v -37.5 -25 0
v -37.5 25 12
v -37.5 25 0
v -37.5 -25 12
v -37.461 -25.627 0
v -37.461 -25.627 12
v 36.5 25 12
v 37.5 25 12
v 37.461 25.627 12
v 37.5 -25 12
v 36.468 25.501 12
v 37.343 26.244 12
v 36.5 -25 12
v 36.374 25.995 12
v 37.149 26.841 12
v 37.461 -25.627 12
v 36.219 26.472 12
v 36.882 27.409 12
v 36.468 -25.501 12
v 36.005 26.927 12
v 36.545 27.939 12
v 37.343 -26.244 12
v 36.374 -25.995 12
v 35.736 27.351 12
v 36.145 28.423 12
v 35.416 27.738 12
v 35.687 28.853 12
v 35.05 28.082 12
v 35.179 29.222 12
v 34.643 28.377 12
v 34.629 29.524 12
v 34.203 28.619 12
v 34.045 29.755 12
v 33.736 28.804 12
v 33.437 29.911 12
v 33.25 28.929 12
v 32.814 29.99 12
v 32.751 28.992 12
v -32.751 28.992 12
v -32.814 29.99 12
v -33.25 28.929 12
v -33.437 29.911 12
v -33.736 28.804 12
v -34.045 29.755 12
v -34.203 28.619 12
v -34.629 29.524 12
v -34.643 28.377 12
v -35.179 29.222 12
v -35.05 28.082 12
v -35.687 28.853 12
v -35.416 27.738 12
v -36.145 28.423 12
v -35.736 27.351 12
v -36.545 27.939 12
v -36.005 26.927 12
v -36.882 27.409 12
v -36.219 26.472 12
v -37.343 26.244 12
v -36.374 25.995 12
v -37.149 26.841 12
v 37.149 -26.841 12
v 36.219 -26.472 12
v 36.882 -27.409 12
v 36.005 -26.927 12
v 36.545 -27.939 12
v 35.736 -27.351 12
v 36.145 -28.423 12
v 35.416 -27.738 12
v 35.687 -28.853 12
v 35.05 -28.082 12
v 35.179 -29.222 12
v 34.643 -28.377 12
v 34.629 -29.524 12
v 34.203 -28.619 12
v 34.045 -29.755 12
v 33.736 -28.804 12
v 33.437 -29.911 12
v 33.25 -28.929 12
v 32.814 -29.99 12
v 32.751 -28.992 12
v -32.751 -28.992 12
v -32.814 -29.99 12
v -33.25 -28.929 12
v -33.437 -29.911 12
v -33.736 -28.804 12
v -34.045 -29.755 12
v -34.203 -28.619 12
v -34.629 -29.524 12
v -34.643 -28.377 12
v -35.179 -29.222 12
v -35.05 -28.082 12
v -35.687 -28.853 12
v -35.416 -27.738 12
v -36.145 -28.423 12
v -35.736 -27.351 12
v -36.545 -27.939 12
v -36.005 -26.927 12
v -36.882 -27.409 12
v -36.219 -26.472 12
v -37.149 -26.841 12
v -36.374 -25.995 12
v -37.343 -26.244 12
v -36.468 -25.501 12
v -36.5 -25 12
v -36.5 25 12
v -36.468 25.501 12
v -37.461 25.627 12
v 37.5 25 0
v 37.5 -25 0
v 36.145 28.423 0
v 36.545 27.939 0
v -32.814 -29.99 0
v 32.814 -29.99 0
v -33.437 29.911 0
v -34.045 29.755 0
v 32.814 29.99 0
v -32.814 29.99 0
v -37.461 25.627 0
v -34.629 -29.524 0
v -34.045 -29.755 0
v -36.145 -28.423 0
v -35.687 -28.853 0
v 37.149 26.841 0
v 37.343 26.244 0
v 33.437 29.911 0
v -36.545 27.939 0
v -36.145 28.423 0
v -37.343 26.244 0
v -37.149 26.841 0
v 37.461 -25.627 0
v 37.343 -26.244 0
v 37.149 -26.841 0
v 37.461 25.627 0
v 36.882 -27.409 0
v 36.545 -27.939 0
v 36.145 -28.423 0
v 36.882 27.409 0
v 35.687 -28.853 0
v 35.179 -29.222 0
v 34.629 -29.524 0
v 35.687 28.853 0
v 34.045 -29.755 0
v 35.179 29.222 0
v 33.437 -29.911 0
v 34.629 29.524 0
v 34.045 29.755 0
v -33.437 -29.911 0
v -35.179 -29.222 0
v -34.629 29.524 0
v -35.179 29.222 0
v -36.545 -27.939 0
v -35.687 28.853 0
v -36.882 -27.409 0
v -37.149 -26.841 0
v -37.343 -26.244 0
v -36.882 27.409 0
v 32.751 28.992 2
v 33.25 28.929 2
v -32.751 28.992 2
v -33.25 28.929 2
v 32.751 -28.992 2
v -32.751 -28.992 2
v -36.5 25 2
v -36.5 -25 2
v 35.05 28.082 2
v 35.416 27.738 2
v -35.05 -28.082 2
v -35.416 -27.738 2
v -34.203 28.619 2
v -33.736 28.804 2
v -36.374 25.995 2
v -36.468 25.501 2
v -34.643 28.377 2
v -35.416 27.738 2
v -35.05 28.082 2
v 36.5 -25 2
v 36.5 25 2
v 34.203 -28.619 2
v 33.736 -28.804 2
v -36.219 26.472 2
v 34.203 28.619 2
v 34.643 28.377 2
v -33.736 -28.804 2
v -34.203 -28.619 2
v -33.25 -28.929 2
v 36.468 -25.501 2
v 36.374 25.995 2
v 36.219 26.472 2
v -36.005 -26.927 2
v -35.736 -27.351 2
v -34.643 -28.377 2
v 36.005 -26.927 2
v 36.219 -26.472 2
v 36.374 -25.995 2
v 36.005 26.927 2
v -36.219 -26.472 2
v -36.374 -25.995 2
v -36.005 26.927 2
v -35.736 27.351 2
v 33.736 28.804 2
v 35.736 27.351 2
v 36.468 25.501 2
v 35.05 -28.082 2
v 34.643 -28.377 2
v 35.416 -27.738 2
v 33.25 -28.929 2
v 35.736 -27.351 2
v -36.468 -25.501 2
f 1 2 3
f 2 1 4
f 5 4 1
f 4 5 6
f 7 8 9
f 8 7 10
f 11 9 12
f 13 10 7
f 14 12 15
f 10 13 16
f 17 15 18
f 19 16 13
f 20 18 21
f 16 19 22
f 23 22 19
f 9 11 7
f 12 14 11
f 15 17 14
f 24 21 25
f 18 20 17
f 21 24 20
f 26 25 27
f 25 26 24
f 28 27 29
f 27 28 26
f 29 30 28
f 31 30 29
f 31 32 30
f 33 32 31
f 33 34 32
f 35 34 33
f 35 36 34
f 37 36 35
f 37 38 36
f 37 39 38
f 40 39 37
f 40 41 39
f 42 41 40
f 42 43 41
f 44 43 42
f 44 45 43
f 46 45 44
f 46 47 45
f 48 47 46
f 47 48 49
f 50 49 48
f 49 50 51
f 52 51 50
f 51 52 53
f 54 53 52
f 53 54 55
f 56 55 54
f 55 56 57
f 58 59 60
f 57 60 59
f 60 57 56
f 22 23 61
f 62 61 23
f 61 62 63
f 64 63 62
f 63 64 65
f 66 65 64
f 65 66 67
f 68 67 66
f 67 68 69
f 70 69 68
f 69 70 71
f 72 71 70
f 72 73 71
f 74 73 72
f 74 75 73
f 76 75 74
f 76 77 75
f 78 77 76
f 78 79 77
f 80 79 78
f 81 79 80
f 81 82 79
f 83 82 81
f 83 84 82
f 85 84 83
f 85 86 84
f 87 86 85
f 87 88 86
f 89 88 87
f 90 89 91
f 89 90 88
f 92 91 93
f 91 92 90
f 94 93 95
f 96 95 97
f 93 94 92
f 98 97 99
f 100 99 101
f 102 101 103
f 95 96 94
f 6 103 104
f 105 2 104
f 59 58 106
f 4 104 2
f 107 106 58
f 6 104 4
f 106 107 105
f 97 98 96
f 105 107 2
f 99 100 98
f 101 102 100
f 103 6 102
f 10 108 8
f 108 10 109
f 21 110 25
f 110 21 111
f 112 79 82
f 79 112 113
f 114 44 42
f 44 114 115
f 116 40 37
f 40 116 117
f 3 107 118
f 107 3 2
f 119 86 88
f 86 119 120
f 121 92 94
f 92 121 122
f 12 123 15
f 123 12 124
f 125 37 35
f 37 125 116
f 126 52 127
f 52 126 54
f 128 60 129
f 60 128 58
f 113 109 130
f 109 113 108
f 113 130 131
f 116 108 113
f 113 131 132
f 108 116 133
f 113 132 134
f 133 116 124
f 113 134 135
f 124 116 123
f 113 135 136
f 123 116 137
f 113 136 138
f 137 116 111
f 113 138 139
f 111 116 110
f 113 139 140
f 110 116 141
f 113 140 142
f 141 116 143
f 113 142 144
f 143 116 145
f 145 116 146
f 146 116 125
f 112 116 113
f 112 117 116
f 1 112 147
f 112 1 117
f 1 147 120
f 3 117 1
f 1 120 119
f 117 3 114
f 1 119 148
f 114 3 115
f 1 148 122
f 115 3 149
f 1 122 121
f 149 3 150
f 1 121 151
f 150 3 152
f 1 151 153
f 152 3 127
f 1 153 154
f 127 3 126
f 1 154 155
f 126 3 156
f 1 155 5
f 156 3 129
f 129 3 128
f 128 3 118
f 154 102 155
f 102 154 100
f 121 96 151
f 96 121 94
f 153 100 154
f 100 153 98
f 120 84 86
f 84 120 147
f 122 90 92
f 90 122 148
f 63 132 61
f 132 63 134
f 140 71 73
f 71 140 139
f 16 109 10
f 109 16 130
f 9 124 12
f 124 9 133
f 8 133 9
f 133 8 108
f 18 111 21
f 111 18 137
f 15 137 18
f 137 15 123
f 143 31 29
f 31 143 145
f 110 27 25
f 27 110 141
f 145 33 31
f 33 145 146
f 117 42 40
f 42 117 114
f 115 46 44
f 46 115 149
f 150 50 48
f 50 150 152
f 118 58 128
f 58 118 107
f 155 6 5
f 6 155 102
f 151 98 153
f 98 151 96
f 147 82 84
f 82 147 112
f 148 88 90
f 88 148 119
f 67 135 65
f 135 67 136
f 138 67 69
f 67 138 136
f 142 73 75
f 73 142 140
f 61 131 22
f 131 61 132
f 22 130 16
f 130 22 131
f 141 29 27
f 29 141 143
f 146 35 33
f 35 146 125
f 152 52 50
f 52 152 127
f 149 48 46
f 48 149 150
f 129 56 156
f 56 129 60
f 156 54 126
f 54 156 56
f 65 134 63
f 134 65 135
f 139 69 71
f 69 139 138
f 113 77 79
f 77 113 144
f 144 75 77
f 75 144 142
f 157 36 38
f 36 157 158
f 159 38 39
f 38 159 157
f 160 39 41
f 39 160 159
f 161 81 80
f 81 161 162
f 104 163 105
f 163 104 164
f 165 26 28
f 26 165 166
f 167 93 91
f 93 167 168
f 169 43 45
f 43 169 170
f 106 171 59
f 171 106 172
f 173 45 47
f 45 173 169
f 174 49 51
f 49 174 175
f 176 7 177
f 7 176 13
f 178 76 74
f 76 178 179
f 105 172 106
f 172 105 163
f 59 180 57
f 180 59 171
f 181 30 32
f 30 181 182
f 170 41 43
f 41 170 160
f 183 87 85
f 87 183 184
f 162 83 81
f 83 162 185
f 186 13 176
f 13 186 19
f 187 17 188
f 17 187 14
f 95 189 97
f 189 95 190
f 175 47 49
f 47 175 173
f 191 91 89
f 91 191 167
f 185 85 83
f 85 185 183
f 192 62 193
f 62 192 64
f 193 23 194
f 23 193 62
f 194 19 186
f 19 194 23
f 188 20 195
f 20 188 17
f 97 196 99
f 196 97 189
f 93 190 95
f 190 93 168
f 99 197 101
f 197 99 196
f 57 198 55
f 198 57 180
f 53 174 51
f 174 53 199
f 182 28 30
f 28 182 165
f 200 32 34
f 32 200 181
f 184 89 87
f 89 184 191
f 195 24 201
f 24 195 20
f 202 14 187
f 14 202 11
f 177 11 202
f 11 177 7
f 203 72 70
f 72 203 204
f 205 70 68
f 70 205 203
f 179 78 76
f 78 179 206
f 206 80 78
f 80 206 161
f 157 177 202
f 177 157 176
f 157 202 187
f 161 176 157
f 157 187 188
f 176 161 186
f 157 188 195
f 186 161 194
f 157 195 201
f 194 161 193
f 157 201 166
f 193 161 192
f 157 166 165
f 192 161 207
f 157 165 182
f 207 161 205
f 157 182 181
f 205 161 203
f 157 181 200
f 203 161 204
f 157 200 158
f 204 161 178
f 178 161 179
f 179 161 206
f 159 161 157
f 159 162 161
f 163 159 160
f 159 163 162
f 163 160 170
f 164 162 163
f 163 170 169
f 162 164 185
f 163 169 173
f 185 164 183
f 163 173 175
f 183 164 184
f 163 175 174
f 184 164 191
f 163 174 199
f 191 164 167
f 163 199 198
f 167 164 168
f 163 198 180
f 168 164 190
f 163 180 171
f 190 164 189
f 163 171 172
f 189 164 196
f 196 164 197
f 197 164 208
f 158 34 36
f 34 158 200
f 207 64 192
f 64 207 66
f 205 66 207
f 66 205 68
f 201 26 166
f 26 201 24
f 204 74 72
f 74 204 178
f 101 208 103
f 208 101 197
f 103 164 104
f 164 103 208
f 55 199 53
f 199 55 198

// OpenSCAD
$fn = 50;


difference() {
	union() {
		hull() {
			translate(v = [-32.5000000000, 25.0000000000, 0]) {
				cylinder(h = 12, r = 5);
			}
			translate(v = [32.5000000000, 25.0000000000, 0]) {
				cylinder(h = 12, r = 5);
			}
			translate(v = [-32.5000000000, -25.0000000000, 0]) {
				cylinder(h = 12, r = 5);
			}
			translate(v = [32.5000000000, -25.0000000000, 0]) {
				cylinder(h = 12, r = 5);
			}
		}
	}
	union() {
		translate(v = [0, 0, 2]) {
			hull() {
				translate(v = [-32.5000000000, 25.0000000000, 0]) {
					cylinder(h = 10, r = 4);
				}
				translate(v = [32.5000000000, 25.0000000000, 0]) {
					cylinder(h = 10, r = 4);
				}
				translate(v = [-32.5000000000, -25.0000000000, 0]) {
					cylinder(h = 10, r = 4);
				}
				translate(v = [32.5000000000, -25.0000000000, 0]) {
					cylinder(h = 10, r = 4);
				}
			}
		}
	}
}
